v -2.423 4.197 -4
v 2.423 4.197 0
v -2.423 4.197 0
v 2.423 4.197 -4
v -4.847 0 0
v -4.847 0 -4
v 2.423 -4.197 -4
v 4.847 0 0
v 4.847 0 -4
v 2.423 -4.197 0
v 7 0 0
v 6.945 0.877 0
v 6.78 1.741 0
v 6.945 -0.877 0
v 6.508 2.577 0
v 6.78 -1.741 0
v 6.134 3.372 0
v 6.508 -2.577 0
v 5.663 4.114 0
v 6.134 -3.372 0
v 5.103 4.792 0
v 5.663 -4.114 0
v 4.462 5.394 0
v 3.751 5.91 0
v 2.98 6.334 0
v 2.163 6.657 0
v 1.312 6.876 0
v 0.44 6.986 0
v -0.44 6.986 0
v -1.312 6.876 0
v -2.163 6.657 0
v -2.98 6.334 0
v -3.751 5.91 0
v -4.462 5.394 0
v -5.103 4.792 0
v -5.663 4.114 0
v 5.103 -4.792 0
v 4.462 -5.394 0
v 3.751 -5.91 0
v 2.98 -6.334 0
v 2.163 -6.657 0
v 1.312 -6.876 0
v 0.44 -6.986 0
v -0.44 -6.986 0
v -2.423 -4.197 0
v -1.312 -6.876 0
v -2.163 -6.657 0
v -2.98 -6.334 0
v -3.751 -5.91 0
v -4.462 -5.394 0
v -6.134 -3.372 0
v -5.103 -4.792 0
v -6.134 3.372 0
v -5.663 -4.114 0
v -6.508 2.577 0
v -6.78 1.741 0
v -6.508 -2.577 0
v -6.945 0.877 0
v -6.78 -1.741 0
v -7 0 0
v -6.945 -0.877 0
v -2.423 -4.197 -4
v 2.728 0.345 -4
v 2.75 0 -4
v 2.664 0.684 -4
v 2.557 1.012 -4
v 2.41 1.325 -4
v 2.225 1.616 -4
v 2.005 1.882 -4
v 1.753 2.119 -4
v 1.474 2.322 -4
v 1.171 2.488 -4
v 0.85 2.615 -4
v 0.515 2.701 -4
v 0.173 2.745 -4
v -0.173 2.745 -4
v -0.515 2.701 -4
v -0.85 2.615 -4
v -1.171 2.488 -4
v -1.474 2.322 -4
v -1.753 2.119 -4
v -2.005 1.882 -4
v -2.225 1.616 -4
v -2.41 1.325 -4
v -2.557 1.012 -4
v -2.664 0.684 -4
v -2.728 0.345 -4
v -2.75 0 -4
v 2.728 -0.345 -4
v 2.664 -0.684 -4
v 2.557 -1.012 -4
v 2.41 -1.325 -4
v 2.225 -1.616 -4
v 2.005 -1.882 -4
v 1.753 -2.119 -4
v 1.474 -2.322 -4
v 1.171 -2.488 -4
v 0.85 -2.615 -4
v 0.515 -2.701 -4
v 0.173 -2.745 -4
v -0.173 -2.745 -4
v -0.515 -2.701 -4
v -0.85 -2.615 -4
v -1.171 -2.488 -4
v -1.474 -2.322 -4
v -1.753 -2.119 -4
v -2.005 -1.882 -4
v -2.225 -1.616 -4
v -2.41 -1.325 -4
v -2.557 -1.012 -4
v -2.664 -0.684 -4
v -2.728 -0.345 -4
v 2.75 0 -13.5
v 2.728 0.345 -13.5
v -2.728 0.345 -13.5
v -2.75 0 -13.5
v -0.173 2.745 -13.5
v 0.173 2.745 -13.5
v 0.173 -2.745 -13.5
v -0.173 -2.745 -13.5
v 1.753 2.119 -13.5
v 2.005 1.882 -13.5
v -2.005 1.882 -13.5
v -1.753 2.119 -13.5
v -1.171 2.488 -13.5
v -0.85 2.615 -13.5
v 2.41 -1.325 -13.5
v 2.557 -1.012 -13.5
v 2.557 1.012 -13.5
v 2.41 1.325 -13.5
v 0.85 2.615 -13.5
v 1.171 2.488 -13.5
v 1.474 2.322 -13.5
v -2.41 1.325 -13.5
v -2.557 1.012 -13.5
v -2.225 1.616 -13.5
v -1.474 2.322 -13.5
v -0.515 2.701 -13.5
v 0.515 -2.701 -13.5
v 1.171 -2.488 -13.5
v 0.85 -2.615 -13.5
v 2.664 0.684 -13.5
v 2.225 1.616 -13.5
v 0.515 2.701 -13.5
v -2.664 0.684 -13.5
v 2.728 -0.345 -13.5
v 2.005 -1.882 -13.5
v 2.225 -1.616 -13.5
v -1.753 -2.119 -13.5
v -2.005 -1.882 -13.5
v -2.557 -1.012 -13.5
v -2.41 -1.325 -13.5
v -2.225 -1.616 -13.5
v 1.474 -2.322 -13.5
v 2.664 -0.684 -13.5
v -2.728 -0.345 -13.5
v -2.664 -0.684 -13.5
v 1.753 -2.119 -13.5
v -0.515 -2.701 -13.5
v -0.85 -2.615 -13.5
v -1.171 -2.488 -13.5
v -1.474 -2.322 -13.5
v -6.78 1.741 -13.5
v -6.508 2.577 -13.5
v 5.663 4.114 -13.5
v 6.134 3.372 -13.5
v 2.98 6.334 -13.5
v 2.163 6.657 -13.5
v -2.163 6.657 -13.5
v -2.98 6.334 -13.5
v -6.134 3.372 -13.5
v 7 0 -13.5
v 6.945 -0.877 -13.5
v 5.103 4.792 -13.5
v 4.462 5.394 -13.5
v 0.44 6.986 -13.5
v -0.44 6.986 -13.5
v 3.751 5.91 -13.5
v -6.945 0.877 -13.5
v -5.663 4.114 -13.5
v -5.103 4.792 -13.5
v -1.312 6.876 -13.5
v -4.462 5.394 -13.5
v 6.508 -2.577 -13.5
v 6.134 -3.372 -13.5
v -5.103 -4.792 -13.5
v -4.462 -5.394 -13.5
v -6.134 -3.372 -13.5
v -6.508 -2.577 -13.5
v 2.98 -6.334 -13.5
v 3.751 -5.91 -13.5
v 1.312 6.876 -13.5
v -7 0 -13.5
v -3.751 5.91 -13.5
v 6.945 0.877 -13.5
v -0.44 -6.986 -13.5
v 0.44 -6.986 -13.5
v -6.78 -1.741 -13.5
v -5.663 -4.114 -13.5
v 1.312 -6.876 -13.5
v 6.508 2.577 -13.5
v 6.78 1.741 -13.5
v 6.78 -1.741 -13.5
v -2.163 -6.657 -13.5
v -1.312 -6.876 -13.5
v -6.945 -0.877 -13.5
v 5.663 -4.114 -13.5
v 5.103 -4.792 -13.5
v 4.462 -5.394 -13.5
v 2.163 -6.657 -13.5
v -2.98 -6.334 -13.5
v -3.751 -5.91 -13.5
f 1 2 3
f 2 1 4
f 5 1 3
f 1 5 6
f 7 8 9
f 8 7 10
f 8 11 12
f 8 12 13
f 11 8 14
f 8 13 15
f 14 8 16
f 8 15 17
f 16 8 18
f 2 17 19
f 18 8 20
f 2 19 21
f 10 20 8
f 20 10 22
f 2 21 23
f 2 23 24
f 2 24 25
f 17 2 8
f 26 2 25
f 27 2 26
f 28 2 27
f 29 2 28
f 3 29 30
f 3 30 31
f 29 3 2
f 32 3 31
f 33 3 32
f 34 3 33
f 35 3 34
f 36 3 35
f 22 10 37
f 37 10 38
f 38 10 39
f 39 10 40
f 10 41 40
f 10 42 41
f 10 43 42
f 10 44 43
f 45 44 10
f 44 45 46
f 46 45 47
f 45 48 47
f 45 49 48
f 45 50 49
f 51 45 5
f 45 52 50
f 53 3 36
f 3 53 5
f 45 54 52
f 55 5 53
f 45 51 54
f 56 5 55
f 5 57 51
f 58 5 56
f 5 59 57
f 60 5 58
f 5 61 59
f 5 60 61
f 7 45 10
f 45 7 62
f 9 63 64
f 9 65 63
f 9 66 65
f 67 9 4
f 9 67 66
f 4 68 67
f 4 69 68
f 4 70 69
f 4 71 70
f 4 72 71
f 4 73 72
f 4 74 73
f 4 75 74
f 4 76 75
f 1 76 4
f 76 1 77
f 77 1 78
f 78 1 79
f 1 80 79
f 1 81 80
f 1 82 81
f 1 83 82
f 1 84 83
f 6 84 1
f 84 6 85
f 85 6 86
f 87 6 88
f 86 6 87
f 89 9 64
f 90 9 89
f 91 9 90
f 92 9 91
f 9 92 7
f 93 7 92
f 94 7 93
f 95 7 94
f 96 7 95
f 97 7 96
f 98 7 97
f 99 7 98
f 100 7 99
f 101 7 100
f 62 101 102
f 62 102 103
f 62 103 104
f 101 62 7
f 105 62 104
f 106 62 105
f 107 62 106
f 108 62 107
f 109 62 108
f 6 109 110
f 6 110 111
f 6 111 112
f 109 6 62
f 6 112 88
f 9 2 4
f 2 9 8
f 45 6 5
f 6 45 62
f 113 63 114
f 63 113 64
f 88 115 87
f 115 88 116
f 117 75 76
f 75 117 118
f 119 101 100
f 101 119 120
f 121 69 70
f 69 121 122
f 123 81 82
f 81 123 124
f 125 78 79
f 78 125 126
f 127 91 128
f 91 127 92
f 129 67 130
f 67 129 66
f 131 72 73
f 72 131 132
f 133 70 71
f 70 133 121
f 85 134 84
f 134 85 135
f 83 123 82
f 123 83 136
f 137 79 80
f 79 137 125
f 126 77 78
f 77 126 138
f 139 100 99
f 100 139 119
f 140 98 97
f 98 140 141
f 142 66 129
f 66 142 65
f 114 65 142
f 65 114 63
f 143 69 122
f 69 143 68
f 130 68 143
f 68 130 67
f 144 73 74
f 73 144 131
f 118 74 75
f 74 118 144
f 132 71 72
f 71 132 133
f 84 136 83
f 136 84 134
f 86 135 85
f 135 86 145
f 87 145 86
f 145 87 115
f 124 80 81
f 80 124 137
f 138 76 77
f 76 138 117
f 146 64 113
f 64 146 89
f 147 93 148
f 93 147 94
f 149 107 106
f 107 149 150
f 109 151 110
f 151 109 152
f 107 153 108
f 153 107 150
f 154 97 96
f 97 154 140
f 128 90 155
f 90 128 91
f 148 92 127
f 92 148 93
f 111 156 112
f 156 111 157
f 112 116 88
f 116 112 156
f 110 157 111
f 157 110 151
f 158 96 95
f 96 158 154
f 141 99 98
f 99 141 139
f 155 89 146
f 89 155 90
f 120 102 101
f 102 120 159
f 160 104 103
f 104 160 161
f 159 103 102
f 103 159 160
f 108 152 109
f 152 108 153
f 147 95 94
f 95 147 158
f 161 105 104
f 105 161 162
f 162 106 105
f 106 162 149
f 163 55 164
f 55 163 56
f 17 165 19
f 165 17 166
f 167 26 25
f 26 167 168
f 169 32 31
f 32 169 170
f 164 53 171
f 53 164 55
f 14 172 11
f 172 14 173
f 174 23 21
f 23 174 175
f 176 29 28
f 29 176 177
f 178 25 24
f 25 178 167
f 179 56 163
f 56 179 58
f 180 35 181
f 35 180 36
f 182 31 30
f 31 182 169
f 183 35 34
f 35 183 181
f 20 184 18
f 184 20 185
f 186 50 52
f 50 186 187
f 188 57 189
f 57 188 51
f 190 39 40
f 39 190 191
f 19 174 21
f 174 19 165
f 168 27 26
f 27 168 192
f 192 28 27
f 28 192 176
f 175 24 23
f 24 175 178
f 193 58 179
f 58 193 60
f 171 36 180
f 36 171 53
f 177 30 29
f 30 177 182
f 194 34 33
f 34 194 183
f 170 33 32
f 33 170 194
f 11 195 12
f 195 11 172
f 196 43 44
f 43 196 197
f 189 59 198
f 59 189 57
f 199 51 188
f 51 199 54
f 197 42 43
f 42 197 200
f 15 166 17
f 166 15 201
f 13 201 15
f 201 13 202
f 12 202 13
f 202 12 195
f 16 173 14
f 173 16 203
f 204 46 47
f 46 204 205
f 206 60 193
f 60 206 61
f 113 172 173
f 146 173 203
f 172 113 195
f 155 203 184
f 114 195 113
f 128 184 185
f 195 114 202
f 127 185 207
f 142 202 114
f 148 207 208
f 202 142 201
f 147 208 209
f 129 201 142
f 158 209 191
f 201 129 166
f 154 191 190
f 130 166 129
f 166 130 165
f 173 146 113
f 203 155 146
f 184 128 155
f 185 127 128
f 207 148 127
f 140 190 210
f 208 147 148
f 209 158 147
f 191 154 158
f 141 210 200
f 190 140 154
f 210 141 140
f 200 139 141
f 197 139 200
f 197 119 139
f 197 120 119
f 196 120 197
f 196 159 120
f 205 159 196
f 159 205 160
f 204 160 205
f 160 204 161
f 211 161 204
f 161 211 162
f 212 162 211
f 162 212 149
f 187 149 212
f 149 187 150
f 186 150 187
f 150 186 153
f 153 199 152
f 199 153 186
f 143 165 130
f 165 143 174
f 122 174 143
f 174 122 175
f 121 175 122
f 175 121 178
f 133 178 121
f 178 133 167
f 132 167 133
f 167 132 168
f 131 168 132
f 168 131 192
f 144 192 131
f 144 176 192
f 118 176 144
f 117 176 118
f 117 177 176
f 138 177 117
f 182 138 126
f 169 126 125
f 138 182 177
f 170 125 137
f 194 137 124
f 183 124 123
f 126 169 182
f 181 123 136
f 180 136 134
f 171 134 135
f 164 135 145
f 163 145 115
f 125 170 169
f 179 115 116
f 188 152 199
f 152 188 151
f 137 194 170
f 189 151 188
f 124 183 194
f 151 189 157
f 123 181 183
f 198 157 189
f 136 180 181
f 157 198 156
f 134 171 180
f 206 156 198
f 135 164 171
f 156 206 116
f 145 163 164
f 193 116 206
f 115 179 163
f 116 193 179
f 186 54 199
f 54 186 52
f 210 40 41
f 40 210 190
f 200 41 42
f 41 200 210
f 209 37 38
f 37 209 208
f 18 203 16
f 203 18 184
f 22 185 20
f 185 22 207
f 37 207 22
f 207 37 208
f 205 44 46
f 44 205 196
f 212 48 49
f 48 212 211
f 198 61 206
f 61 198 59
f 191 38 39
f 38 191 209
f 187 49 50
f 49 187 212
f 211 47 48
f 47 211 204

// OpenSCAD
$fn = 50;


difference() {
	union() {
		translate(v = [0, 0, -13.5000000000]) {
			cylinder(h = 13.5000000000, r = 7.0000000000);
		}
	}
	union() {
		translate(v = [0, 0, 0]) {
			rotate(a = [0, 0, 0]) {
				difference() {
					union() {
						translate(v = [0, 0, -4]) {
							linear_extrude(height = 4) {
								polygon(points = [[4.8468000000, 0.0000000000], [2.4234000000, 4.1974519271], [-2.4234000000, 4.1974519271], [-4.8468000000, 0.0000000000], [-2.4234000000, -4.1974519271], [2.4234000000, -4.1974519271]]);
							}
						}
					}
					union();
				}
			}
		}
		#translate(v = [0, 0, -100.0000000000]) {
			cylinder(h = 200, r = 2.7500000000);
		}
	}
}
